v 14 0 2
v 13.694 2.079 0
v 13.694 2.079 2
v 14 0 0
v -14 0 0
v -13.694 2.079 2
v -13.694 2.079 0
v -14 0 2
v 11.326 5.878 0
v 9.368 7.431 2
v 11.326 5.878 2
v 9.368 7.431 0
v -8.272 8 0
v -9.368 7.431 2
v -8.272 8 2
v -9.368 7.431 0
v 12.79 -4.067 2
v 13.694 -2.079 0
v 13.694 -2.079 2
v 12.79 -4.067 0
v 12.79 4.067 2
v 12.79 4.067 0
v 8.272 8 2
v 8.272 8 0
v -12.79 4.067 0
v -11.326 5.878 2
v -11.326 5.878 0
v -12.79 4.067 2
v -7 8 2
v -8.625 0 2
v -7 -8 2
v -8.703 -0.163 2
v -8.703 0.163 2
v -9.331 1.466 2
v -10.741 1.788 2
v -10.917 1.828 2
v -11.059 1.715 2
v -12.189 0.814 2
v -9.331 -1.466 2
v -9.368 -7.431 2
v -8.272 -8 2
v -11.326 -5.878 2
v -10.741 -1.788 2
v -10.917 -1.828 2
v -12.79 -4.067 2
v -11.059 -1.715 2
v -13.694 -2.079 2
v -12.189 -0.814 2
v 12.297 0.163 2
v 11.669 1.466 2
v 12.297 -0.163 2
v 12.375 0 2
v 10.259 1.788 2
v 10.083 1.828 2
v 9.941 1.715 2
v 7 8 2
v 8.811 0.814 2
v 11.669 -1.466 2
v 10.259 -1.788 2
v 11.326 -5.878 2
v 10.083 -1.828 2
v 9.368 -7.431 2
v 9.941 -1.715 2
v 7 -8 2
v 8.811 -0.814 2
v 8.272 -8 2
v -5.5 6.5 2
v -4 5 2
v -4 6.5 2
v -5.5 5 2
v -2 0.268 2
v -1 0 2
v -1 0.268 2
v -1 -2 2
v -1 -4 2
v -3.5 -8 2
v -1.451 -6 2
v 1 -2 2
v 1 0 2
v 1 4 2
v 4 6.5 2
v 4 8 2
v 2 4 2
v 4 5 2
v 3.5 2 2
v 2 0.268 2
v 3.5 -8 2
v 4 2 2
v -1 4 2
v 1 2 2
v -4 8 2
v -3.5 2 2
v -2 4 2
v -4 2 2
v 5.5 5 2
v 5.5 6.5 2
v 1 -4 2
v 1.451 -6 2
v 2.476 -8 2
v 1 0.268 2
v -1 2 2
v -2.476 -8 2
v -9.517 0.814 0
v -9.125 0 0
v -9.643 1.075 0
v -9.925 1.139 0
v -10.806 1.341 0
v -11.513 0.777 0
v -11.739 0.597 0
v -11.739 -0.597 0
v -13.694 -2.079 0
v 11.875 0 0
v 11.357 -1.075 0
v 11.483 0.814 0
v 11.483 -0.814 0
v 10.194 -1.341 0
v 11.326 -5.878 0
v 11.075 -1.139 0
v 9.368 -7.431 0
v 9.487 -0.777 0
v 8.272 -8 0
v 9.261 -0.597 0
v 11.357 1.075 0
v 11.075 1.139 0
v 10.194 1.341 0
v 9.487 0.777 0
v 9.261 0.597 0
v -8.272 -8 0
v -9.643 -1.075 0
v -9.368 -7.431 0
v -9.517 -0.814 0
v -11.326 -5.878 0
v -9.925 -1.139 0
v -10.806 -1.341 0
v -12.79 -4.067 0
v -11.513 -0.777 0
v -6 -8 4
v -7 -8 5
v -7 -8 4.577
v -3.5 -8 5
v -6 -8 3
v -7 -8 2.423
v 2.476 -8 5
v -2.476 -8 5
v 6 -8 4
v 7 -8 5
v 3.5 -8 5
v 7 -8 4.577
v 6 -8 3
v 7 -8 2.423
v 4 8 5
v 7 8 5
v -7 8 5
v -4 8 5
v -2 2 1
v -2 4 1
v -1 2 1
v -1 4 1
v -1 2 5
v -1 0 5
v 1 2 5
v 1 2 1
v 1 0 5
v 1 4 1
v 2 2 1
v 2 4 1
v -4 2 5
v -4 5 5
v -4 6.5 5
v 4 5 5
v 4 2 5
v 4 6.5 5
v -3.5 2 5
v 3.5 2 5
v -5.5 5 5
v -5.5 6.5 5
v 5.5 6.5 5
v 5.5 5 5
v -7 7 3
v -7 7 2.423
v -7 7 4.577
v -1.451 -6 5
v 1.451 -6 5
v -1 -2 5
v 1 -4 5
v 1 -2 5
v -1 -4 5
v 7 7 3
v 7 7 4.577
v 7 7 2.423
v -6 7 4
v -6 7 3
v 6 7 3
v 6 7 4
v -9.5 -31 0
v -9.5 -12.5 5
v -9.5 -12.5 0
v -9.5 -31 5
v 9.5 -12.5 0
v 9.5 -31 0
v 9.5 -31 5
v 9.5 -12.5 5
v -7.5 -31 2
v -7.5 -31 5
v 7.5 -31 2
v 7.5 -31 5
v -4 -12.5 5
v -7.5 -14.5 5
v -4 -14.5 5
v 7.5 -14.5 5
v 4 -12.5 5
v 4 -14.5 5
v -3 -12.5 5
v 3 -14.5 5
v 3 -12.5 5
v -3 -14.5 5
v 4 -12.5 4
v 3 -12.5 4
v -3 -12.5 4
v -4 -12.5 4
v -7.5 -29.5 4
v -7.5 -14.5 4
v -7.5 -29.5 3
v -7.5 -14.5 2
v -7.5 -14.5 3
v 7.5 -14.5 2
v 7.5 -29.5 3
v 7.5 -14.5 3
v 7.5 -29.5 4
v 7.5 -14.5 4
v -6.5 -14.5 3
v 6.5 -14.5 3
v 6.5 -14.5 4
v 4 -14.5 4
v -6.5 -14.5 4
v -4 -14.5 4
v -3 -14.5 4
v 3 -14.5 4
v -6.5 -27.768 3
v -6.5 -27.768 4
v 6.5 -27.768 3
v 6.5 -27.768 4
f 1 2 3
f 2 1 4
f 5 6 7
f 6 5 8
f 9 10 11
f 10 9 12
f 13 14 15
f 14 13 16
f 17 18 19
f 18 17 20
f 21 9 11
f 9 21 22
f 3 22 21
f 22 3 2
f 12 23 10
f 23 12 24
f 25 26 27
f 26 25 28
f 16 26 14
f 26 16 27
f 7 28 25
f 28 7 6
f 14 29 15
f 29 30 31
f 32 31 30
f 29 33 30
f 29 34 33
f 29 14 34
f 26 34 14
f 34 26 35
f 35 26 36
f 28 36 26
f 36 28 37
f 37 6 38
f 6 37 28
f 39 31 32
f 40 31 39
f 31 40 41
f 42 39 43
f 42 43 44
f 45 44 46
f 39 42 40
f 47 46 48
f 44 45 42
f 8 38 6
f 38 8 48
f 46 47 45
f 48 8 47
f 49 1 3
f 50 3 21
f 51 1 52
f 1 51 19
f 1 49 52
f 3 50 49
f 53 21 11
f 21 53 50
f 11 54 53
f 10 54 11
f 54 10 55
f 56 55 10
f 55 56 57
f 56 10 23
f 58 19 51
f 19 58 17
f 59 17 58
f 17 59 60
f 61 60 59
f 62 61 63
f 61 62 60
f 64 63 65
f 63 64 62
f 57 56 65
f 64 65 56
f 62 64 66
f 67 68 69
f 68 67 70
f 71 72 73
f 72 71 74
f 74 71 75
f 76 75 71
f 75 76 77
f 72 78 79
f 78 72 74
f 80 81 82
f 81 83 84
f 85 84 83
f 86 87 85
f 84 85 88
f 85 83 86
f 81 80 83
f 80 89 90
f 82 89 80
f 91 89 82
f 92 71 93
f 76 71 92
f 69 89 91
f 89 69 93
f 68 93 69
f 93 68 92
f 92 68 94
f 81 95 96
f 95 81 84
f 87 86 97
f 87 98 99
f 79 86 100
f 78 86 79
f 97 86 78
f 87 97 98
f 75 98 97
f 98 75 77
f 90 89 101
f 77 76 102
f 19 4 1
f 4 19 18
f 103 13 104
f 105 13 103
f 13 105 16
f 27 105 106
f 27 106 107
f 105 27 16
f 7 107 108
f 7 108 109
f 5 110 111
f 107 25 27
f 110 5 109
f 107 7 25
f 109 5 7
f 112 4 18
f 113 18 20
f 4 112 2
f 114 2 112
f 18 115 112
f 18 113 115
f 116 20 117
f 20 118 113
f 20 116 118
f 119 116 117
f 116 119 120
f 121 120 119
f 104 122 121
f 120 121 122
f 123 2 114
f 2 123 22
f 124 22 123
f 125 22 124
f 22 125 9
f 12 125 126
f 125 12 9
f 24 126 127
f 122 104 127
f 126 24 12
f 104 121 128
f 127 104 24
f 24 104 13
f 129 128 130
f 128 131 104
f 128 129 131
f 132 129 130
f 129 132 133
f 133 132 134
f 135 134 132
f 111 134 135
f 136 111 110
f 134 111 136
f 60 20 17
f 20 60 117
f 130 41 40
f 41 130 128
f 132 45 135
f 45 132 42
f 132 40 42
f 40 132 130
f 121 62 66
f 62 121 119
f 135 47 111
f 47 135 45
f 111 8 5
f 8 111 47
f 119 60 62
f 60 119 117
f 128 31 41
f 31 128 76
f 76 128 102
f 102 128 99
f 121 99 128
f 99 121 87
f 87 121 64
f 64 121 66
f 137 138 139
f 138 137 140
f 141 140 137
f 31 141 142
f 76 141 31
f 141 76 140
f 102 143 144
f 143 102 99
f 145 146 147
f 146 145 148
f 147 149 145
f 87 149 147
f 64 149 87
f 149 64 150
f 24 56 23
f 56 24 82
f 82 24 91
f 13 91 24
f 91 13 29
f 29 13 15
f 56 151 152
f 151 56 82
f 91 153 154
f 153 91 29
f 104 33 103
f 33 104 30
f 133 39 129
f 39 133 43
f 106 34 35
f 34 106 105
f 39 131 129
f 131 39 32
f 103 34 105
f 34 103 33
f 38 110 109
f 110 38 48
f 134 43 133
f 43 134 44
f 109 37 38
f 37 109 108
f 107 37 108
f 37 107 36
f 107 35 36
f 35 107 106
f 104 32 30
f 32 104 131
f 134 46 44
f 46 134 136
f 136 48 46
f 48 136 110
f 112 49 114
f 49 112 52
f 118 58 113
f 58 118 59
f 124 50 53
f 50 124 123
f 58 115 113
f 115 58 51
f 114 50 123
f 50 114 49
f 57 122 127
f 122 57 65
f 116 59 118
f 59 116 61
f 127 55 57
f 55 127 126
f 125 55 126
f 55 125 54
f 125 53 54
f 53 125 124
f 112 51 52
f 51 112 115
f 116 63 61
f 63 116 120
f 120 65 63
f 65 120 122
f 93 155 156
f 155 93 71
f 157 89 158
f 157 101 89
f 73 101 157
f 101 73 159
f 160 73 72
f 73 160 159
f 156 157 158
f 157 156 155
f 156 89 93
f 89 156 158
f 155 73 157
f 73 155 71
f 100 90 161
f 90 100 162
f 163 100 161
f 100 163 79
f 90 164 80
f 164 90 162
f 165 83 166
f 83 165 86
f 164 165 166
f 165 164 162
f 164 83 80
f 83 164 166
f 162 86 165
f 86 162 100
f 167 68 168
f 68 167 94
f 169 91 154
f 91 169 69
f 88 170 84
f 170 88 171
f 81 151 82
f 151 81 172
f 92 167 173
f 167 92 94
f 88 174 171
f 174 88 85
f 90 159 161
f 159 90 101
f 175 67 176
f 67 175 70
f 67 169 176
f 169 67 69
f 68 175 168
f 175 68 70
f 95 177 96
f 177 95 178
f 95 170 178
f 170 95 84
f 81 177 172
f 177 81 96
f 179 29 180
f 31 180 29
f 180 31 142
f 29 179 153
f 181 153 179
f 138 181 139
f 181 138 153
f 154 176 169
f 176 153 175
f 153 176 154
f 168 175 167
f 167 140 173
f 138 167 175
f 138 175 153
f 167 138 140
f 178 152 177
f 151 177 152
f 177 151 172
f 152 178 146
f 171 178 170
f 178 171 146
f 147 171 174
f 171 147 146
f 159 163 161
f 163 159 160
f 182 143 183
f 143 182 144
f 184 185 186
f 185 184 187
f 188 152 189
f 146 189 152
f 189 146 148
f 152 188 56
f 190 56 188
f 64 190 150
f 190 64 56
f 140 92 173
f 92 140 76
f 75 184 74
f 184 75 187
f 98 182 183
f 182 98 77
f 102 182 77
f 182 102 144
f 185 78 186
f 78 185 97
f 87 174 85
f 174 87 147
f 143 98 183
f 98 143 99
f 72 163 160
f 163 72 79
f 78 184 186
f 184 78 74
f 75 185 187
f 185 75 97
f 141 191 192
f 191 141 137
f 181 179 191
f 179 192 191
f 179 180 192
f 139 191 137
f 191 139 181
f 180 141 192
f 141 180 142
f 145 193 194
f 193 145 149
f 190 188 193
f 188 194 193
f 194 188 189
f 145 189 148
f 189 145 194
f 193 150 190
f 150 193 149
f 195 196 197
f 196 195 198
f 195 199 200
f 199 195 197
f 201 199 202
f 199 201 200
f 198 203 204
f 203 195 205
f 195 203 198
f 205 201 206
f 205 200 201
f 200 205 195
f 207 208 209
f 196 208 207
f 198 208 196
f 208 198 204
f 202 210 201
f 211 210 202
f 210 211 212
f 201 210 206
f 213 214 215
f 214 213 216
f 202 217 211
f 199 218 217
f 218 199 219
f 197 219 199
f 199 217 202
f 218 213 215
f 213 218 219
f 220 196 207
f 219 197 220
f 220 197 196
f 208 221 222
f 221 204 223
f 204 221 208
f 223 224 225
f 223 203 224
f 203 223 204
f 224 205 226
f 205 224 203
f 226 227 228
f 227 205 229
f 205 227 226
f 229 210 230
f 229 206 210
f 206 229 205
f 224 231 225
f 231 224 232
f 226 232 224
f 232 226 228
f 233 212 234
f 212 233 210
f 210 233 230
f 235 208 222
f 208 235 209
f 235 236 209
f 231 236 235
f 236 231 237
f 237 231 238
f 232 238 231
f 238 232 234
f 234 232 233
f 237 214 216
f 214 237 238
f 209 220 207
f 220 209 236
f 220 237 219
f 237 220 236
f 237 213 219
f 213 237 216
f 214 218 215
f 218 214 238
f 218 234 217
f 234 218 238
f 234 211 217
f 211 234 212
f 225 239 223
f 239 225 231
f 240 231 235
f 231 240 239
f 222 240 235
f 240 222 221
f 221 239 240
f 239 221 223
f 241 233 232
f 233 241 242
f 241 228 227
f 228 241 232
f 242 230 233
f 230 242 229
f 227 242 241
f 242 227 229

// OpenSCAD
usb_w=8;
usb_h=3;
usb_l=6;
box_l=16;
box_w=usb_w + 2*3;
base_w=30;
base_h=2;

// base
difference() {
    intersection() {
        scale([1.4, 1, 1]) cylinder(r=base_w/3, h=base_h);
        translate([-base_w/2, -box_l/2, 0]) cube([base_w, box_l, base_h]);
    }
    // screw holes
    translate([-10.5, 0, -0.5]) cylinder(r1=1.25, r2=2, h=base_h + 1);
    translate([ 10.5, 0, -0.5]) cylinder(r1=1.25, r2=2, h=base_h + 1);
    // channels
    translate([-usb_w / 2 + 2, box_l / 2 - 6, base_h - 1]) cube([1, 2, 2]);
    translate([-usb_w / 2 + 2, box_l / 2 - 6, base_h - 1])
        rotate([-30, 0, 0]) translate([0, -2, 0]) cube([1, 2, 1]);
    translate([ usb_w / 2 - 3, box_l / 2 - 6, base_h - 1]) cube([1, 2, 2]);
    translate([ usb_w / 2 - 3, box_l / 2 - 6, base_h - 1])
        rotate([-30, 0, 0]) translate([0, -2, 0]) cube([1, 2, 1]);
    
}

// box
translate([-box_w/2, -box_l/2, base_h])
    difference() {
        cube([box_w, box_l, usb_h]);
        translate([(box_w - usb_w) / 2, box_l - usb_l, -0.5])
            union() {
                cube([usb_w, usb_l + 1, usb_h + 1]);
                translate([-1.5, 3, 0])    cube([2, 1.5, usb_h + 1]);
                translate([usb_w - 0.5, 3, 0]) cube([2, 1.5, usb_h + 1]);
            }
        // channels
        translate([(box_w - usb_w) / 2 + 0.5, 2, -0.5])
            cube([2.5, box_l - usb_l + 1, usb_h + 1]);
        translate([(box_w - usb_w) / 2 + 0.5, 0, -0.5])
            linear_extrude(height=usb_h + 1)
                polygon([[0,-2],[2.1,2.1],[0, 2.1]], paths=[[0,1,2,0]]);             
        translate([(box_w + usb_w) / 2 - 3, 2, -0.5])
            cube([2.5, box_l - usb_l + 1, usb_h + 1]);
        translate([(box_w + usb_w) / 2 - 0.5, 0, -0.5])
            linear_extrude(height=usb_h + 1)
                polygon([[0,-2],[-2.1,2.1],[0, 2.1]], paths=[[0,1,2,0]]);                     
        translate([(box_w - usb_w) / 2 + 1, 6, -0.5]) cube([usb_w - 2, 2, usb_h + 1]);
        translate([(box_w - usb_w) / 2 + 1, 2, -0.5]) cube([usb_w - 2, 2, usb_h + 1]);
        // left rail
        translate([-1, -2, 1]) cube([2, box_l + 1, 1]);
        translate([1, -2, 2]) rotate([0, 30, 0])
            translate([-2, 0, -0.5]) cube([2, box_l + 1, 0.5]);
        translate([1, -2, 1]) rotate([0, -30, 0])
            translate([-2, 0, 0]) cube([2, box_l + 1, 0.5]);
        // right rail                       
        translate([box_w - 1, -2, 1]) cube([2, box_l + 1, 1]);
        translate([box_w - 1, -2, 2]) rotate([0, -30, 0])
            translate([0, 0, -0.5]) cube([2, box_l + 1, 0.5]);
        translate([box_w - 1, -2, 1]) rotate([0, 30, 0])
            cube([2, box_l + 1, 0.5]);
    }
    
// lid
//translate([-(box_w + 5) / 2, -box_l / 2, 6])
translate([-(box_w + 5) / 2, -15, usb_h + 2]) rotate([180, 0, 0])
union() {
    difference() {
        translate([0, -2.5, 0]) cube([box_w + 5, box_l + 2.5, usb_h + 2]);
        translate([2, -0.5, -0.5]) cube([box_w + 1, box_l + 1, usb_h + 0.5]);   
        translate([(box_w - usb_w) / 2 + 2.5, -3.5, -1]) cube([1, 4, 2]);
        translate([(box_w + usb_w) / 2 + 1.5, -3.5, -1]) cube([1, 4, 2]);
    }
    difference() {
        translate([2, -0.5, 1]) cube([1, box_l - 1, 1]);
        translate([2, box_l - 1.5, 0])
            rotate([0, 0, 30]) translate([0, -2, 0.5]) cube([1, 2, 2]);
    }
    difference() {
        translate([box_w + 2, -0.5, 1]) cube([1, box_l - 1, 1]);
        translate([box_w + 3, box_l - 1.5, 0])
            rotate([0, 0, -30]) translate([-1, -2, 0.5]) cube([1, 2, 2]);
    }
}
